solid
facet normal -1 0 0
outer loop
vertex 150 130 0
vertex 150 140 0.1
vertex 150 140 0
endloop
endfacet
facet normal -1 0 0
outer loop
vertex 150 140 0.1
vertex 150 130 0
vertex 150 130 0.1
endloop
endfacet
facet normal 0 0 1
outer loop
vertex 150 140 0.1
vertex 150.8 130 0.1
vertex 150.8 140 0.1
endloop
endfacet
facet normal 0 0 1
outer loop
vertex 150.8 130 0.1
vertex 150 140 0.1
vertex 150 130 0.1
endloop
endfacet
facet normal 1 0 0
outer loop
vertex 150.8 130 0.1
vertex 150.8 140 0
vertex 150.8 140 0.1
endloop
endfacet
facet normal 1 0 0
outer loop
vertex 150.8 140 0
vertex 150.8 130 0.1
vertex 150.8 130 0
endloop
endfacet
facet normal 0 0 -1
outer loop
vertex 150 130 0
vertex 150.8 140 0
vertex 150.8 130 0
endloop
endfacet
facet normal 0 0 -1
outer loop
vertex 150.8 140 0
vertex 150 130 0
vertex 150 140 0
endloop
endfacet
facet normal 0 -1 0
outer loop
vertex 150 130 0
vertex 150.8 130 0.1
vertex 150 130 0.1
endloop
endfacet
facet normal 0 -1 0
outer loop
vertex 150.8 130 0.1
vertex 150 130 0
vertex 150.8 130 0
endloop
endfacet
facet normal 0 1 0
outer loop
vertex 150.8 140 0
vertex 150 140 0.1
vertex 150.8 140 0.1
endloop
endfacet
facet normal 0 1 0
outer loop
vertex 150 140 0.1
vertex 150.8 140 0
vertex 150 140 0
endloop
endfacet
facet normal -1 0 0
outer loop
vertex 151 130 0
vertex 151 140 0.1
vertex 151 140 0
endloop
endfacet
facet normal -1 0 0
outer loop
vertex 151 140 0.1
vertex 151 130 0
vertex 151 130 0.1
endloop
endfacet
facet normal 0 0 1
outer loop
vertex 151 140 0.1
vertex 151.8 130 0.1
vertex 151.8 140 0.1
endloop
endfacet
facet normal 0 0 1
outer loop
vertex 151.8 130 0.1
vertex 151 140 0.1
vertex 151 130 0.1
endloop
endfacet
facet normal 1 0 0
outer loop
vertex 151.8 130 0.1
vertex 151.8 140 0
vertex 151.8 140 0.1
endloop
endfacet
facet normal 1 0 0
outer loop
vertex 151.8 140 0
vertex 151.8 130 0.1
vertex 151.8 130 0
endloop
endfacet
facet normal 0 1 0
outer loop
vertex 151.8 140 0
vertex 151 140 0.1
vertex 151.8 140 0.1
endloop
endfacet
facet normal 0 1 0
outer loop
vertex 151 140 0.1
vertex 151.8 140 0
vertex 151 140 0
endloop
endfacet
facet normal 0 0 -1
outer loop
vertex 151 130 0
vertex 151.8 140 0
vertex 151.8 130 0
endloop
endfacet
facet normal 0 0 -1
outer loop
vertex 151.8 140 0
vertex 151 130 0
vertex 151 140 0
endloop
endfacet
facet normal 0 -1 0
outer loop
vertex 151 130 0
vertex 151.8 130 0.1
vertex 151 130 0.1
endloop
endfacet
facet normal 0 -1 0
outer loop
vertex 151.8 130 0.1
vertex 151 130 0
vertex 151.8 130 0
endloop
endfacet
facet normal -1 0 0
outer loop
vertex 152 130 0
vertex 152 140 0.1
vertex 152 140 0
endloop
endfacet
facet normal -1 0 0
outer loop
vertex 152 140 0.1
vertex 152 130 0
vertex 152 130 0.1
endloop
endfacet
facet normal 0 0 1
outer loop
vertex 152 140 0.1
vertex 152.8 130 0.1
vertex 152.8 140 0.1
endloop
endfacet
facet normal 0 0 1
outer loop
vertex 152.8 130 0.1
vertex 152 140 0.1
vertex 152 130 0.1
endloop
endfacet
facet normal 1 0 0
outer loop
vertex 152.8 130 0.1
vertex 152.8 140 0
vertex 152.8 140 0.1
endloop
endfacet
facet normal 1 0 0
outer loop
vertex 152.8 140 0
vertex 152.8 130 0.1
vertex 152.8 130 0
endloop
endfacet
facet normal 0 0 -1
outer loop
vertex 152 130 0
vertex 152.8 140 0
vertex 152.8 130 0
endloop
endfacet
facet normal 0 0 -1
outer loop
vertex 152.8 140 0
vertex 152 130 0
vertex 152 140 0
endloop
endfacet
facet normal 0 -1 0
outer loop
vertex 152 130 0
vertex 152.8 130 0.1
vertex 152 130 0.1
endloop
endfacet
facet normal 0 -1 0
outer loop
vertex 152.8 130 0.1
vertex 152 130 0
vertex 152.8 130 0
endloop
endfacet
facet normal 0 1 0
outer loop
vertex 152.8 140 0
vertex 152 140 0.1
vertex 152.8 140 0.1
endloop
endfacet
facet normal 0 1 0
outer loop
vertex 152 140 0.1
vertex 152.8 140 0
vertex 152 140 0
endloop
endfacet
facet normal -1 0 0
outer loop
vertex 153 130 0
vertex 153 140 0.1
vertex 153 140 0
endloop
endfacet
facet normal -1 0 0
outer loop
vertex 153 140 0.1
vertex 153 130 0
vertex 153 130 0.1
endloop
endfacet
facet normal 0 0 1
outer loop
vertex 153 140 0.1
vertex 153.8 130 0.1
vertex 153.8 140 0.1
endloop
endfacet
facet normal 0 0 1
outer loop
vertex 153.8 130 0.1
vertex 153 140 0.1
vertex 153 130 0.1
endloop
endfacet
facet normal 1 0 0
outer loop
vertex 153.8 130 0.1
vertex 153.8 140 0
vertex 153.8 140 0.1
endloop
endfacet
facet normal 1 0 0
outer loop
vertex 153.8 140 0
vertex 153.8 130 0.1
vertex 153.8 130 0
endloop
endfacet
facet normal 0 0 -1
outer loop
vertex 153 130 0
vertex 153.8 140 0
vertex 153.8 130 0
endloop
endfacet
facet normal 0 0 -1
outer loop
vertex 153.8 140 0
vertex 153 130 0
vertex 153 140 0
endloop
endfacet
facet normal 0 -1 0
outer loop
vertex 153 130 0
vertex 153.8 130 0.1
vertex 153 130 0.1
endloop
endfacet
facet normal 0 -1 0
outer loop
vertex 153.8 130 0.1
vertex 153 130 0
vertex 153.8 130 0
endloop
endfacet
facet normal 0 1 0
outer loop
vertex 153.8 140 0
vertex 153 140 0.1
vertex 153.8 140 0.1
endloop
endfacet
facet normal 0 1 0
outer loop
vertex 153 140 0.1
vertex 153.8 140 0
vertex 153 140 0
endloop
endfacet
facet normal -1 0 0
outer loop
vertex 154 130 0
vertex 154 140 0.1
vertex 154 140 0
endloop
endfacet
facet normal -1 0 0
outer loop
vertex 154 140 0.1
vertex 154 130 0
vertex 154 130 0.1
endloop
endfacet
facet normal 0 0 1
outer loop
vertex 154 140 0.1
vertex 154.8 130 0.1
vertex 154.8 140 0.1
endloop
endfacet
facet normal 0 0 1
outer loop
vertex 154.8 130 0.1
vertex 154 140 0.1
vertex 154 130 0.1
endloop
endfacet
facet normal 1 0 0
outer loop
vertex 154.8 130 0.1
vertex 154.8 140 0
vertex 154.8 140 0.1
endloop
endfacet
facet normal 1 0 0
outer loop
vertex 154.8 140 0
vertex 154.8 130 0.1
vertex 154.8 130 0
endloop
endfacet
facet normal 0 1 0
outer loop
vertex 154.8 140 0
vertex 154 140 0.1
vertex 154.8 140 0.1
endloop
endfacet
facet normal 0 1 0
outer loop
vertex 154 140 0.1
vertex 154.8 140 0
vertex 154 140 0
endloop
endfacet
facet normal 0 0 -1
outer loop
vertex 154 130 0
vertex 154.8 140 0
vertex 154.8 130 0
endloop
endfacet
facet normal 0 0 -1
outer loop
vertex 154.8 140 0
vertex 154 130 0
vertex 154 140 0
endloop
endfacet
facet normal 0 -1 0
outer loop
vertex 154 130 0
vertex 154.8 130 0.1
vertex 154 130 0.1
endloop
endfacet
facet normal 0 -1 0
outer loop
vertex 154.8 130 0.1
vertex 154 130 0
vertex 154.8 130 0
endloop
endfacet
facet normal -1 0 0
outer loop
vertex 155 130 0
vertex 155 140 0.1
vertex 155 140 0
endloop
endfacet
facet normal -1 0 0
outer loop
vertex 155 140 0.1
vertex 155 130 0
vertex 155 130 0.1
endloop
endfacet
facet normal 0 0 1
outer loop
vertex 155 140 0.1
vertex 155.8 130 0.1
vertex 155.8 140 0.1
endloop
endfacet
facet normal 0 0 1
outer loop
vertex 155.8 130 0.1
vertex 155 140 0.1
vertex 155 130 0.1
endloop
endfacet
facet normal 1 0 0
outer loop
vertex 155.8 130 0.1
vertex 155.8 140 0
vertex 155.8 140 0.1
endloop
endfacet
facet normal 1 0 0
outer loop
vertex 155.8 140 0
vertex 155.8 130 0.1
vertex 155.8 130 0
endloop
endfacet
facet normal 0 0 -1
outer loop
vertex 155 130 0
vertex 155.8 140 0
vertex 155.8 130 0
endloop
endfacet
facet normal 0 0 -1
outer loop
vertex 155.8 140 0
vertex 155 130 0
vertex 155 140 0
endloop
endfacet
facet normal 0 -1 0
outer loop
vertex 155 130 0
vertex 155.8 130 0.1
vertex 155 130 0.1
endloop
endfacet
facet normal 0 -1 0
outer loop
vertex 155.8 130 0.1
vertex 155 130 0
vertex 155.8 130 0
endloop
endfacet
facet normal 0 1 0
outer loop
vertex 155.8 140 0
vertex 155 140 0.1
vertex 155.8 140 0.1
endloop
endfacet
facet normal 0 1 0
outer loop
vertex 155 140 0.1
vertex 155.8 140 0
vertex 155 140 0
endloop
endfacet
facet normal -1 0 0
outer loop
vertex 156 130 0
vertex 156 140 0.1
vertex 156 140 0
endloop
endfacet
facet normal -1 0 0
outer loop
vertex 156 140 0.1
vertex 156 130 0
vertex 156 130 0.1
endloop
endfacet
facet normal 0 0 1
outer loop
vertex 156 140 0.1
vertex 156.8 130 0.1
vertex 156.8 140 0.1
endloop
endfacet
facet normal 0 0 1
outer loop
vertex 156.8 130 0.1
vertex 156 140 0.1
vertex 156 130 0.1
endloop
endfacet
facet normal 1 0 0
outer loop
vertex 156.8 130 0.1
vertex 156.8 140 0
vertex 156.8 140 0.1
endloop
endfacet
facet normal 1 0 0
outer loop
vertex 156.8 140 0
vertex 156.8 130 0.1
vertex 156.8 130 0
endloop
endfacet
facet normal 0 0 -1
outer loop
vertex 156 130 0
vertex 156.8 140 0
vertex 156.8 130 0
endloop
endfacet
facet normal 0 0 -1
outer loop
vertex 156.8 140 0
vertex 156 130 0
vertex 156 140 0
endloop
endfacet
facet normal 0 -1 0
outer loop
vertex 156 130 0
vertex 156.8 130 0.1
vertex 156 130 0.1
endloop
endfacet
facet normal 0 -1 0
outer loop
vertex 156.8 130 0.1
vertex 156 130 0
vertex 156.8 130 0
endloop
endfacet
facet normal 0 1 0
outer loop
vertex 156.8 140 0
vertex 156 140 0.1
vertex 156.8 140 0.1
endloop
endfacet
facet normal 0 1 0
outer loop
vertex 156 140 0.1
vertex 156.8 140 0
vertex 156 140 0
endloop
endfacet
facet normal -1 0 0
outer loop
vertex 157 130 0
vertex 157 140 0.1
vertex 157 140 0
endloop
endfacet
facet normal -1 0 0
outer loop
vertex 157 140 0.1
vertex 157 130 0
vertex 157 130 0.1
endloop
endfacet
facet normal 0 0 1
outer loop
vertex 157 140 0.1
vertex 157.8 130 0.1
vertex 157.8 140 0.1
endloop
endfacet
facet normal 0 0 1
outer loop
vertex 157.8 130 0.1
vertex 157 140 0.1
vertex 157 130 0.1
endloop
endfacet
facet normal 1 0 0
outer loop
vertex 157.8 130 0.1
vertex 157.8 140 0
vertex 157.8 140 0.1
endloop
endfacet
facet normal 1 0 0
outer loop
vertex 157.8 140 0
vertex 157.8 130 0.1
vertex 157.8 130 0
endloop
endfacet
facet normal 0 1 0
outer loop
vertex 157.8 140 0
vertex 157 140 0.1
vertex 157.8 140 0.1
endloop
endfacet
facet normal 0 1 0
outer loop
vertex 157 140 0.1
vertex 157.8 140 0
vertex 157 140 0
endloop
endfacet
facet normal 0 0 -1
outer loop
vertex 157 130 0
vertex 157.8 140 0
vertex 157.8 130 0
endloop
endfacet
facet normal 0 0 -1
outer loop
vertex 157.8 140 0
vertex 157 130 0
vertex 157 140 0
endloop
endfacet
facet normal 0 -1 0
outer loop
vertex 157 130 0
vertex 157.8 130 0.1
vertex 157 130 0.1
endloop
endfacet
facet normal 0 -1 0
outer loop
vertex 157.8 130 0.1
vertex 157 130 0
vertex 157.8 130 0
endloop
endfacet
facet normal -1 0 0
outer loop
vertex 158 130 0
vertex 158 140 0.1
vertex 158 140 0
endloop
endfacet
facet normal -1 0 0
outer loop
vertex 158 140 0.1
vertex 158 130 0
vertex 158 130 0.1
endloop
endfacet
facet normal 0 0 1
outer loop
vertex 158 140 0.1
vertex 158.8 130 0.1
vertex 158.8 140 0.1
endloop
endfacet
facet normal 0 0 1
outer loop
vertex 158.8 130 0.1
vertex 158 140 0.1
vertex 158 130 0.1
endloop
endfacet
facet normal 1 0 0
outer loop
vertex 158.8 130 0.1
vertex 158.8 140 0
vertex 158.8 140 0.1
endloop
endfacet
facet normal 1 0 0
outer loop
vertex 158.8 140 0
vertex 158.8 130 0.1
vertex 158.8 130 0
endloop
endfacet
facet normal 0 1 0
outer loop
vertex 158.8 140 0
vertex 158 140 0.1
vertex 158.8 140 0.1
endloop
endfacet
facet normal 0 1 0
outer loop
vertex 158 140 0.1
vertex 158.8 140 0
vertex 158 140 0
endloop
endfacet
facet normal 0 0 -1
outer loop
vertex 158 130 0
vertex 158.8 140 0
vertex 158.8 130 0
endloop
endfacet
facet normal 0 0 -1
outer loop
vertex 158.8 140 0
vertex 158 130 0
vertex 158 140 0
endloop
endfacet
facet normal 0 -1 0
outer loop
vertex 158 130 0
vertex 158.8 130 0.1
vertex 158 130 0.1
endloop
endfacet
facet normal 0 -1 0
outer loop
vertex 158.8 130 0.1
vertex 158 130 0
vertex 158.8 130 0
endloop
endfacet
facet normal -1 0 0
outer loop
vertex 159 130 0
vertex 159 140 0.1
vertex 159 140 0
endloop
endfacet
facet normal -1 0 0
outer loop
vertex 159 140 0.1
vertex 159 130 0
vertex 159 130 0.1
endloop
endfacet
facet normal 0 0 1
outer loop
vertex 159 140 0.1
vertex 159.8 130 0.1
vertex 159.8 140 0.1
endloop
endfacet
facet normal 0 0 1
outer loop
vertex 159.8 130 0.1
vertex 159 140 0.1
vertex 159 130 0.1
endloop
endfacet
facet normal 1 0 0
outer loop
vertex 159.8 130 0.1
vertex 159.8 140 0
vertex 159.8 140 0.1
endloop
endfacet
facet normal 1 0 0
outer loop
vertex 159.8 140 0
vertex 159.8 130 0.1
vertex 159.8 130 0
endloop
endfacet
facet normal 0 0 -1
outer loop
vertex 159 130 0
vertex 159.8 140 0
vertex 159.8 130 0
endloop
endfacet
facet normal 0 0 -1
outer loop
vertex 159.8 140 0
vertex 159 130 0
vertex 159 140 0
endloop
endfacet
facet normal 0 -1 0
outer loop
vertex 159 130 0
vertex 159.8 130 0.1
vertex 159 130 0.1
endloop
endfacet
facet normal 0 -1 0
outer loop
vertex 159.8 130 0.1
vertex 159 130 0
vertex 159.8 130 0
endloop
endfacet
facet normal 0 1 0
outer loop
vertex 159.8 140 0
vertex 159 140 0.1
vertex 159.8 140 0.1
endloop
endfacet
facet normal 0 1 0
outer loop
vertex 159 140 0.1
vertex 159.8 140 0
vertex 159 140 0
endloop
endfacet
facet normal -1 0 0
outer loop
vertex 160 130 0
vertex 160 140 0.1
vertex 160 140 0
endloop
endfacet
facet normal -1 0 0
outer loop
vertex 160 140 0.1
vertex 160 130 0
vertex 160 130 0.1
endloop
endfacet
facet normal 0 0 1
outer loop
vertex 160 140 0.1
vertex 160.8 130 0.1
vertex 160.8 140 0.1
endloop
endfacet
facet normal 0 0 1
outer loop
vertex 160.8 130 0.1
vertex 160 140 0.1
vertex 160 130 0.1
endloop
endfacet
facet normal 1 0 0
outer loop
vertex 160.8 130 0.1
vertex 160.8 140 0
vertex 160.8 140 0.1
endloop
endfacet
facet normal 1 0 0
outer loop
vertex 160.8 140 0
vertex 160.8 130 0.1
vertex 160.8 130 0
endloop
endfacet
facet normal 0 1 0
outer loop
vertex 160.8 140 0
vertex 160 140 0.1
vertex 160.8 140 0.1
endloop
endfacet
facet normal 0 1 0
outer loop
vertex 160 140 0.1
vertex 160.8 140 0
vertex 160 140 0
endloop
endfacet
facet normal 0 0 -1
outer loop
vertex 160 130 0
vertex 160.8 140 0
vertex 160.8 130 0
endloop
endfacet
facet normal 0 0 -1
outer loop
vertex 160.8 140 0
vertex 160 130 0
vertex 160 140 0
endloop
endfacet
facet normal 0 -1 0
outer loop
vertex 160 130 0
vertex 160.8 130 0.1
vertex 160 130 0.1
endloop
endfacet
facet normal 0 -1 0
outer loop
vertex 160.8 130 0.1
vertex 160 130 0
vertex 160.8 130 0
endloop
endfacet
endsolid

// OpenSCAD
translate([10+140,10+120,0])
        for (i = [0 : 10]){
            translate([i,0,0])
                cube(size = [0.8,10,0.1]);
    }
